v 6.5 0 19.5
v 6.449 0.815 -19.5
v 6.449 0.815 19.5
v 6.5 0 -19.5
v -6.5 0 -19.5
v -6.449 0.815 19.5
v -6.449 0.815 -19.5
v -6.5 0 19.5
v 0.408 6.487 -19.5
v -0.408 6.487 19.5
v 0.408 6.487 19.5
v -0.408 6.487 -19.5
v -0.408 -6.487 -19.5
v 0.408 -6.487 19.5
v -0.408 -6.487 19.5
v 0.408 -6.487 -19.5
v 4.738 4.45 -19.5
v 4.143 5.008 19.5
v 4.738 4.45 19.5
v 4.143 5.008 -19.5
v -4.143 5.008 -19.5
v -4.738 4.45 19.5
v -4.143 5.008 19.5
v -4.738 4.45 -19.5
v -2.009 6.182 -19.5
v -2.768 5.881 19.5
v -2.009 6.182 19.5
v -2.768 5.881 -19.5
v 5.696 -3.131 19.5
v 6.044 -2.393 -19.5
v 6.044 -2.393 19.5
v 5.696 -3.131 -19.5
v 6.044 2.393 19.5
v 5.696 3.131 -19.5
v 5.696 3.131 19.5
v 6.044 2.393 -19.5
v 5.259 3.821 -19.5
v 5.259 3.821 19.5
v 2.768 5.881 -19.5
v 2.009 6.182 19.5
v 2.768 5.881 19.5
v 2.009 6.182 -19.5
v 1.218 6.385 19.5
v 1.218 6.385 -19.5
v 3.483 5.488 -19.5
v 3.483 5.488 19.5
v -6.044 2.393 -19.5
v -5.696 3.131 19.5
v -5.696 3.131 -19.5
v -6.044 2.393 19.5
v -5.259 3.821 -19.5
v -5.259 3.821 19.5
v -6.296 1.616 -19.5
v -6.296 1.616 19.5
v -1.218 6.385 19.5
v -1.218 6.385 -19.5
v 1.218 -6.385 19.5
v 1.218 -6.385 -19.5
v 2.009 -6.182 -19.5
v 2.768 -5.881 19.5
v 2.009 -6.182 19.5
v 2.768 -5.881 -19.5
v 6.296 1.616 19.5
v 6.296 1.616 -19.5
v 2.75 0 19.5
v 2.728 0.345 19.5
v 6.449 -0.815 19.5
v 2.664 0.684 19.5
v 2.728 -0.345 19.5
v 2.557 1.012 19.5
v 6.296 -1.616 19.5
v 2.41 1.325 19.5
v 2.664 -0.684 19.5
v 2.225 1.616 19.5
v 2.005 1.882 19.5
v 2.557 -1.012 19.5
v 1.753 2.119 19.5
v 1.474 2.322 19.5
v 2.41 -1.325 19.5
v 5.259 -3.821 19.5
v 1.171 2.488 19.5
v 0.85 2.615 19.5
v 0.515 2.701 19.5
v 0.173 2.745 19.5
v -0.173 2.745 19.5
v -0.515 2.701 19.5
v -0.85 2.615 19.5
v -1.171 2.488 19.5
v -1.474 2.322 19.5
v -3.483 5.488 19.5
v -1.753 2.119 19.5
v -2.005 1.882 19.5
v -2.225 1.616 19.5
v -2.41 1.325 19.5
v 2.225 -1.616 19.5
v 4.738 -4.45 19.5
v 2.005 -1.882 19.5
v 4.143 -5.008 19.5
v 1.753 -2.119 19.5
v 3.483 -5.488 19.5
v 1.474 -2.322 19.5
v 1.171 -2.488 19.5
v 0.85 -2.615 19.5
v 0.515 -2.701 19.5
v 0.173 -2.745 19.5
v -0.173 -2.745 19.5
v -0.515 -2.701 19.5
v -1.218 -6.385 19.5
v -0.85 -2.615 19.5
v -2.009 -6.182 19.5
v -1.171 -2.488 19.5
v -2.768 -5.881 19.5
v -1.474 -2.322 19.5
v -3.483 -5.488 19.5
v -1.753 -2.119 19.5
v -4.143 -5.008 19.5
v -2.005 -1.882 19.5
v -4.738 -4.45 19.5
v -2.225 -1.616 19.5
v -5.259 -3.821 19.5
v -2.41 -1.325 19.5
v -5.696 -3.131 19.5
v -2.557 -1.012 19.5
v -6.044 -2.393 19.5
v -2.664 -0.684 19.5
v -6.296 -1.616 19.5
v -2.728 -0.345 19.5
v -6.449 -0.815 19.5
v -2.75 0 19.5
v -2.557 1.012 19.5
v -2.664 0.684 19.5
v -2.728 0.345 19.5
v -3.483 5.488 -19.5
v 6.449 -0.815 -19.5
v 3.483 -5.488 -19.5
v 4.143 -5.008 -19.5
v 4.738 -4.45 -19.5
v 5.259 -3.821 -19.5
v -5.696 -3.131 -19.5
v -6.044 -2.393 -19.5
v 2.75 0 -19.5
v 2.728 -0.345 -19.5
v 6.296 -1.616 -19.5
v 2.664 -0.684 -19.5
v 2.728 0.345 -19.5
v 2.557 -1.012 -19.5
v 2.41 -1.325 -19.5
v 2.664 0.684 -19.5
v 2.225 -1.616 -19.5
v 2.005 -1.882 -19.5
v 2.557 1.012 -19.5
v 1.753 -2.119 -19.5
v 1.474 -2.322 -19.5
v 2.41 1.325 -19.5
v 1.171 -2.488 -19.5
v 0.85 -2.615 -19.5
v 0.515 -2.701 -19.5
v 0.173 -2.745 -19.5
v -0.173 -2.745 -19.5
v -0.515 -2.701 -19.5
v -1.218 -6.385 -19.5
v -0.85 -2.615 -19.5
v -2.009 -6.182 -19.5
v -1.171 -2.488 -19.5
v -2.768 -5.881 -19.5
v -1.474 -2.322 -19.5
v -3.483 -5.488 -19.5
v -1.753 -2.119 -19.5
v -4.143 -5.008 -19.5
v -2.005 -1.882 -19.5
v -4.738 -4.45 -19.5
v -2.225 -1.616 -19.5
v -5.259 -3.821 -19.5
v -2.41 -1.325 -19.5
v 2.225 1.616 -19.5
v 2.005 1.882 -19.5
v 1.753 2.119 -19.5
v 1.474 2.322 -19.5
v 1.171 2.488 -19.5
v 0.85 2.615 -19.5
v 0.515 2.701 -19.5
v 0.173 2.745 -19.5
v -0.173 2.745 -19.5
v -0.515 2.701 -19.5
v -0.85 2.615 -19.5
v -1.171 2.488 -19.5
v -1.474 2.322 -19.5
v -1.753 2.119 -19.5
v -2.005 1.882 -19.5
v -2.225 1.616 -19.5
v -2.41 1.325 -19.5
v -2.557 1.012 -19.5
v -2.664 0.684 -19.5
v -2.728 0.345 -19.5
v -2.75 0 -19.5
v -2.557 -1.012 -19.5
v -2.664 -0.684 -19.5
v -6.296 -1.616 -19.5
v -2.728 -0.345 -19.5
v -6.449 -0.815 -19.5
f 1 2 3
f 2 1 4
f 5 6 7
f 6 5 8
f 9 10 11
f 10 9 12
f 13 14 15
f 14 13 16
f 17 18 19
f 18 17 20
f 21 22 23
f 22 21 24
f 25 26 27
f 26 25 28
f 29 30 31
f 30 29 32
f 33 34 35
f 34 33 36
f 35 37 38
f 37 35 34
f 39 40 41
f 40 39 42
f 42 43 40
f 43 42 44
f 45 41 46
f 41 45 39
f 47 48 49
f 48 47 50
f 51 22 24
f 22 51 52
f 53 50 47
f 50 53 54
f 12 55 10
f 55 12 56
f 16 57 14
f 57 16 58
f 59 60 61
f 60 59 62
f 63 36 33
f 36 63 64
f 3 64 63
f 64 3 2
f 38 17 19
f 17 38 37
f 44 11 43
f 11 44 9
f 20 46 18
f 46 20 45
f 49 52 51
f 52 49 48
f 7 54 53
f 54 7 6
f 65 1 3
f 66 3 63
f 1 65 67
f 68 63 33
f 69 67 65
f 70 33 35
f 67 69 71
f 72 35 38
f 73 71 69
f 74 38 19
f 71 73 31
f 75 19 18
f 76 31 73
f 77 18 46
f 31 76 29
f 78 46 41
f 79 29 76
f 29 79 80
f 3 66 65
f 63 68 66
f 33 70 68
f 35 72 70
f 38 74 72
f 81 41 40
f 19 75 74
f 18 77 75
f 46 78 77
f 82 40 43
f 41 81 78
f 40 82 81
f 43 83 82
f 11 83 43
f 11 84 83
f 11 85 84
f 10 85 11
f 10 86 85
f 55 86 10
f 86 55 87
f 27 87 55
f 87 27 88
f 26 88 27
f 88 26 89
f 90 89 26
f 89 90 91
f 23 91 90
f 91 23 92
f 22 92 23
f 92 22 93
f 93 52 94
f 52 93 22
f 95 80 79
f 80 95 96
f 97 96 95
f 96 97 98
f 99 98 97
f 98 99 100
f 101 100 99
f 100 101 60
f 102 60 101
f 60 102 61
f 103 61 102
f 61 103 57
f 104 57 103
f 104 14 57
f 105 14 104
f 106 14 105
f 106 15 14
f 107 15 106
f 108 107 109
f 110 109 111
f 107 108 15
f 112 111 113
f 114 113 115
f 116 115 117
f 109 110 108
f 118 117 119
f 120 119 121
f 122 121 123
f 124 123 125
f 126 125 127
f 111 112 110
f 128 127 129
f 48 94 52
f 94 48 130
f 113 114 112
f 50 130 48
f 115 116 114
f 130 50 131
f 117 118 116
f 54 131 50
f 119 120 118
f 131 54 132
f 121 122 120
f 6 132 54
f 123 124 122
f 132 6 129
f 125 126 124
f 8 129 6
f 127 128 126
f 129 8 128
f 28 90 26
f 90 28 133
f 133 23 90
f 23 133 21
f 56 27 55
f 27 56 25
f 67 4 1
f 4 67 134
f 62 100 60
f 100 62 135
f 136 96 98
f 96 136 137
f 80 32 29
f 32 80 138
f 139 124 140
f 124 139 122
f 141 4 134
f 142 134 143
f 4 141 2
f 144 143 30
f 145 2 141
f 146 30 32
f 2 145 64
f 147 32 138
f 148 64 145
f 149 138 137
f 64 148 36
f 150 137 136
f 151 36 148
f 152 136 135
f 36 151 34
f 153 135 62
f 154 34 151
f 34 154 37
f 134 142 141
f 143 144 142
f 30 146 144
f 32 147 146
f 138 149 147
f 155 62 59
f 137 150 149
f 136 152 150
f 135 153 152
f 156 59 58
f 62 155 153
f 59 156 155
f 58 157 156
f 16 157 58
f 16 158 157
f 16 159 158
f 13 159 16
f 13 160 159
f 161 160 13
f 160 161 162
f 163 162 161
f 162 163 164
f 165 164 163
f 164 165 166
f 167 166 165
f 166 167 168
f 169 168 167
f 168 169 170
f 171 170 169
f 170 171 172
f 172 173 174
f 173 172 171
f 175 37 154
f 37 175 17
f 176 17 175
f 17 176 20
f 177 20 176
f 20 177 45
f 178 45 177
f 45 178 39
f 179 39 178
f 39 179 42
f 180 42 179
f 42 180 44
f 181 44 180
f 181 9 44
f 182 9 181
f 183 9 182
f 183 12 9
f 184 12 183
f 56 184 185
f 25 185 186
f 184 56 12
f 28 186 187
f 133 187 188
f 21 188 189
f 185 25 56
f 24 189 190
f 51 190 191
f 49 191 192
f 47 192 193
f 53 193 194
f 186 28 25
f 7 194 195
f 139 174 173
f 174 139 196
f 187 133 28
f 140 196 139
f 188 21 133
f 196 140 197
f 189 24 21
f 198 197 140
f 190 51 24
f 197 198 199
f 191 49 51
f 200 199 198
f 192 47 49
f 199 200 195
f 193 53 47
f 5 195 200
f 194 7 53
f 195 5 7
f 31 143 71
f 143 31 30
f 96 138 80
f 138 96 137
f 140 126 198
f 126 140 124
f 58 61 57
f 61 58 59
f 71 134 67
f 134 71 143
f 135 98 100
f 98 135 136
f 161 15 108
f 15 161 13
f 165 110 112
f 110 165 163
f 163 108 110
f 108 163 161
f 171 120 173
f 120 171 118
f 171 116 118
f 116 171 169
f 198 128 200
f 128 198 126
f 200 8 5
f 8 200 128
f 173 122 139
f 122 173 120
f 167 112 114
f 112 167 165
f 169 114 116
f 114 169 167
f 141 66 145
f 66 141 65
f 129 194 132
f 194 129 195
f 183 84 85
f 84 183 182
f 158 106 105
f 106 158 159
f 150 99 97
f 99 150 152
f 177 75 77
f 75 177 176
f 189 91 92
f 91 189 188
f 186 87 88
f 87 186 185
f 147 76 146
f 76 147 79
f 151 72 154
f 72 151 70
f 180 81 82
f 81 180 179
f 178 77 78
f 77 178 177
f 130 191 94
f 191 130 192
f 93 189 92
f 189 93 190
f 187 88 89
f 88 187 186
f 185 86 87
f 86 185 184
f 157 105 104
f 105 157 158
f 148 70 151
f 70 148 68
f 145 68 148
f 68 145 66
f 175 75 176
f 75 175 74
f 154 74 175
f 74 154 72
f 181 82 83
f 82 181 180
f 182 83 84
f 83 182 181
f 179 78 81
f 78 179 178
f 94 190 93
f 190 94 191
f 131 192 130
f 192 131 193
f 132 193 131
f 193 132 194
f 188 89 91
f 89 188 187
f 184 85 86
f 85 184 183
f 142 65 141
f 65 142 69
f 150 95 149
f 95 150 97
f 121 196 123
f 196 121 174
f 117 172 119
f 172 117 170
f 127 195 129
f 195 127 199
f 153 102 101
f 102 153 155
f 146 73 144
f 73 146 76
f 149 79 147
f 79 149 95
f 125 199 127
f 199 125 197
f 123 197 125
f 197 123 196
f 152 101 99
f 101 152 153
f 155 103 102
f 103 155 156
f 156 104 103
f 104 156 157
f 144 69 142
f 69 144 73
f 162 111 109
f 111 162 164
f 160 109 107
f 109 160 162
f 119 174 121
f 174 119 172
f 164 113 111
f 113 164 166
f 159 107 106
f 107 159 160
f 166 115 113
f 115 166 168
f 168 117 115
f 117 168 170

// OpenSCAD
$fn = 50;


difference() {
	union() {
		translate(v = [0, 0, -19.5000000000]) {
			cylinder(h = 39, r = 6.5000000000);
		}
	}
	union() {
		translate(v = [0, 0, -100.0000000000]) {
			cylinder(h = 200, r = 2.7500000000);
		}
	}
}
